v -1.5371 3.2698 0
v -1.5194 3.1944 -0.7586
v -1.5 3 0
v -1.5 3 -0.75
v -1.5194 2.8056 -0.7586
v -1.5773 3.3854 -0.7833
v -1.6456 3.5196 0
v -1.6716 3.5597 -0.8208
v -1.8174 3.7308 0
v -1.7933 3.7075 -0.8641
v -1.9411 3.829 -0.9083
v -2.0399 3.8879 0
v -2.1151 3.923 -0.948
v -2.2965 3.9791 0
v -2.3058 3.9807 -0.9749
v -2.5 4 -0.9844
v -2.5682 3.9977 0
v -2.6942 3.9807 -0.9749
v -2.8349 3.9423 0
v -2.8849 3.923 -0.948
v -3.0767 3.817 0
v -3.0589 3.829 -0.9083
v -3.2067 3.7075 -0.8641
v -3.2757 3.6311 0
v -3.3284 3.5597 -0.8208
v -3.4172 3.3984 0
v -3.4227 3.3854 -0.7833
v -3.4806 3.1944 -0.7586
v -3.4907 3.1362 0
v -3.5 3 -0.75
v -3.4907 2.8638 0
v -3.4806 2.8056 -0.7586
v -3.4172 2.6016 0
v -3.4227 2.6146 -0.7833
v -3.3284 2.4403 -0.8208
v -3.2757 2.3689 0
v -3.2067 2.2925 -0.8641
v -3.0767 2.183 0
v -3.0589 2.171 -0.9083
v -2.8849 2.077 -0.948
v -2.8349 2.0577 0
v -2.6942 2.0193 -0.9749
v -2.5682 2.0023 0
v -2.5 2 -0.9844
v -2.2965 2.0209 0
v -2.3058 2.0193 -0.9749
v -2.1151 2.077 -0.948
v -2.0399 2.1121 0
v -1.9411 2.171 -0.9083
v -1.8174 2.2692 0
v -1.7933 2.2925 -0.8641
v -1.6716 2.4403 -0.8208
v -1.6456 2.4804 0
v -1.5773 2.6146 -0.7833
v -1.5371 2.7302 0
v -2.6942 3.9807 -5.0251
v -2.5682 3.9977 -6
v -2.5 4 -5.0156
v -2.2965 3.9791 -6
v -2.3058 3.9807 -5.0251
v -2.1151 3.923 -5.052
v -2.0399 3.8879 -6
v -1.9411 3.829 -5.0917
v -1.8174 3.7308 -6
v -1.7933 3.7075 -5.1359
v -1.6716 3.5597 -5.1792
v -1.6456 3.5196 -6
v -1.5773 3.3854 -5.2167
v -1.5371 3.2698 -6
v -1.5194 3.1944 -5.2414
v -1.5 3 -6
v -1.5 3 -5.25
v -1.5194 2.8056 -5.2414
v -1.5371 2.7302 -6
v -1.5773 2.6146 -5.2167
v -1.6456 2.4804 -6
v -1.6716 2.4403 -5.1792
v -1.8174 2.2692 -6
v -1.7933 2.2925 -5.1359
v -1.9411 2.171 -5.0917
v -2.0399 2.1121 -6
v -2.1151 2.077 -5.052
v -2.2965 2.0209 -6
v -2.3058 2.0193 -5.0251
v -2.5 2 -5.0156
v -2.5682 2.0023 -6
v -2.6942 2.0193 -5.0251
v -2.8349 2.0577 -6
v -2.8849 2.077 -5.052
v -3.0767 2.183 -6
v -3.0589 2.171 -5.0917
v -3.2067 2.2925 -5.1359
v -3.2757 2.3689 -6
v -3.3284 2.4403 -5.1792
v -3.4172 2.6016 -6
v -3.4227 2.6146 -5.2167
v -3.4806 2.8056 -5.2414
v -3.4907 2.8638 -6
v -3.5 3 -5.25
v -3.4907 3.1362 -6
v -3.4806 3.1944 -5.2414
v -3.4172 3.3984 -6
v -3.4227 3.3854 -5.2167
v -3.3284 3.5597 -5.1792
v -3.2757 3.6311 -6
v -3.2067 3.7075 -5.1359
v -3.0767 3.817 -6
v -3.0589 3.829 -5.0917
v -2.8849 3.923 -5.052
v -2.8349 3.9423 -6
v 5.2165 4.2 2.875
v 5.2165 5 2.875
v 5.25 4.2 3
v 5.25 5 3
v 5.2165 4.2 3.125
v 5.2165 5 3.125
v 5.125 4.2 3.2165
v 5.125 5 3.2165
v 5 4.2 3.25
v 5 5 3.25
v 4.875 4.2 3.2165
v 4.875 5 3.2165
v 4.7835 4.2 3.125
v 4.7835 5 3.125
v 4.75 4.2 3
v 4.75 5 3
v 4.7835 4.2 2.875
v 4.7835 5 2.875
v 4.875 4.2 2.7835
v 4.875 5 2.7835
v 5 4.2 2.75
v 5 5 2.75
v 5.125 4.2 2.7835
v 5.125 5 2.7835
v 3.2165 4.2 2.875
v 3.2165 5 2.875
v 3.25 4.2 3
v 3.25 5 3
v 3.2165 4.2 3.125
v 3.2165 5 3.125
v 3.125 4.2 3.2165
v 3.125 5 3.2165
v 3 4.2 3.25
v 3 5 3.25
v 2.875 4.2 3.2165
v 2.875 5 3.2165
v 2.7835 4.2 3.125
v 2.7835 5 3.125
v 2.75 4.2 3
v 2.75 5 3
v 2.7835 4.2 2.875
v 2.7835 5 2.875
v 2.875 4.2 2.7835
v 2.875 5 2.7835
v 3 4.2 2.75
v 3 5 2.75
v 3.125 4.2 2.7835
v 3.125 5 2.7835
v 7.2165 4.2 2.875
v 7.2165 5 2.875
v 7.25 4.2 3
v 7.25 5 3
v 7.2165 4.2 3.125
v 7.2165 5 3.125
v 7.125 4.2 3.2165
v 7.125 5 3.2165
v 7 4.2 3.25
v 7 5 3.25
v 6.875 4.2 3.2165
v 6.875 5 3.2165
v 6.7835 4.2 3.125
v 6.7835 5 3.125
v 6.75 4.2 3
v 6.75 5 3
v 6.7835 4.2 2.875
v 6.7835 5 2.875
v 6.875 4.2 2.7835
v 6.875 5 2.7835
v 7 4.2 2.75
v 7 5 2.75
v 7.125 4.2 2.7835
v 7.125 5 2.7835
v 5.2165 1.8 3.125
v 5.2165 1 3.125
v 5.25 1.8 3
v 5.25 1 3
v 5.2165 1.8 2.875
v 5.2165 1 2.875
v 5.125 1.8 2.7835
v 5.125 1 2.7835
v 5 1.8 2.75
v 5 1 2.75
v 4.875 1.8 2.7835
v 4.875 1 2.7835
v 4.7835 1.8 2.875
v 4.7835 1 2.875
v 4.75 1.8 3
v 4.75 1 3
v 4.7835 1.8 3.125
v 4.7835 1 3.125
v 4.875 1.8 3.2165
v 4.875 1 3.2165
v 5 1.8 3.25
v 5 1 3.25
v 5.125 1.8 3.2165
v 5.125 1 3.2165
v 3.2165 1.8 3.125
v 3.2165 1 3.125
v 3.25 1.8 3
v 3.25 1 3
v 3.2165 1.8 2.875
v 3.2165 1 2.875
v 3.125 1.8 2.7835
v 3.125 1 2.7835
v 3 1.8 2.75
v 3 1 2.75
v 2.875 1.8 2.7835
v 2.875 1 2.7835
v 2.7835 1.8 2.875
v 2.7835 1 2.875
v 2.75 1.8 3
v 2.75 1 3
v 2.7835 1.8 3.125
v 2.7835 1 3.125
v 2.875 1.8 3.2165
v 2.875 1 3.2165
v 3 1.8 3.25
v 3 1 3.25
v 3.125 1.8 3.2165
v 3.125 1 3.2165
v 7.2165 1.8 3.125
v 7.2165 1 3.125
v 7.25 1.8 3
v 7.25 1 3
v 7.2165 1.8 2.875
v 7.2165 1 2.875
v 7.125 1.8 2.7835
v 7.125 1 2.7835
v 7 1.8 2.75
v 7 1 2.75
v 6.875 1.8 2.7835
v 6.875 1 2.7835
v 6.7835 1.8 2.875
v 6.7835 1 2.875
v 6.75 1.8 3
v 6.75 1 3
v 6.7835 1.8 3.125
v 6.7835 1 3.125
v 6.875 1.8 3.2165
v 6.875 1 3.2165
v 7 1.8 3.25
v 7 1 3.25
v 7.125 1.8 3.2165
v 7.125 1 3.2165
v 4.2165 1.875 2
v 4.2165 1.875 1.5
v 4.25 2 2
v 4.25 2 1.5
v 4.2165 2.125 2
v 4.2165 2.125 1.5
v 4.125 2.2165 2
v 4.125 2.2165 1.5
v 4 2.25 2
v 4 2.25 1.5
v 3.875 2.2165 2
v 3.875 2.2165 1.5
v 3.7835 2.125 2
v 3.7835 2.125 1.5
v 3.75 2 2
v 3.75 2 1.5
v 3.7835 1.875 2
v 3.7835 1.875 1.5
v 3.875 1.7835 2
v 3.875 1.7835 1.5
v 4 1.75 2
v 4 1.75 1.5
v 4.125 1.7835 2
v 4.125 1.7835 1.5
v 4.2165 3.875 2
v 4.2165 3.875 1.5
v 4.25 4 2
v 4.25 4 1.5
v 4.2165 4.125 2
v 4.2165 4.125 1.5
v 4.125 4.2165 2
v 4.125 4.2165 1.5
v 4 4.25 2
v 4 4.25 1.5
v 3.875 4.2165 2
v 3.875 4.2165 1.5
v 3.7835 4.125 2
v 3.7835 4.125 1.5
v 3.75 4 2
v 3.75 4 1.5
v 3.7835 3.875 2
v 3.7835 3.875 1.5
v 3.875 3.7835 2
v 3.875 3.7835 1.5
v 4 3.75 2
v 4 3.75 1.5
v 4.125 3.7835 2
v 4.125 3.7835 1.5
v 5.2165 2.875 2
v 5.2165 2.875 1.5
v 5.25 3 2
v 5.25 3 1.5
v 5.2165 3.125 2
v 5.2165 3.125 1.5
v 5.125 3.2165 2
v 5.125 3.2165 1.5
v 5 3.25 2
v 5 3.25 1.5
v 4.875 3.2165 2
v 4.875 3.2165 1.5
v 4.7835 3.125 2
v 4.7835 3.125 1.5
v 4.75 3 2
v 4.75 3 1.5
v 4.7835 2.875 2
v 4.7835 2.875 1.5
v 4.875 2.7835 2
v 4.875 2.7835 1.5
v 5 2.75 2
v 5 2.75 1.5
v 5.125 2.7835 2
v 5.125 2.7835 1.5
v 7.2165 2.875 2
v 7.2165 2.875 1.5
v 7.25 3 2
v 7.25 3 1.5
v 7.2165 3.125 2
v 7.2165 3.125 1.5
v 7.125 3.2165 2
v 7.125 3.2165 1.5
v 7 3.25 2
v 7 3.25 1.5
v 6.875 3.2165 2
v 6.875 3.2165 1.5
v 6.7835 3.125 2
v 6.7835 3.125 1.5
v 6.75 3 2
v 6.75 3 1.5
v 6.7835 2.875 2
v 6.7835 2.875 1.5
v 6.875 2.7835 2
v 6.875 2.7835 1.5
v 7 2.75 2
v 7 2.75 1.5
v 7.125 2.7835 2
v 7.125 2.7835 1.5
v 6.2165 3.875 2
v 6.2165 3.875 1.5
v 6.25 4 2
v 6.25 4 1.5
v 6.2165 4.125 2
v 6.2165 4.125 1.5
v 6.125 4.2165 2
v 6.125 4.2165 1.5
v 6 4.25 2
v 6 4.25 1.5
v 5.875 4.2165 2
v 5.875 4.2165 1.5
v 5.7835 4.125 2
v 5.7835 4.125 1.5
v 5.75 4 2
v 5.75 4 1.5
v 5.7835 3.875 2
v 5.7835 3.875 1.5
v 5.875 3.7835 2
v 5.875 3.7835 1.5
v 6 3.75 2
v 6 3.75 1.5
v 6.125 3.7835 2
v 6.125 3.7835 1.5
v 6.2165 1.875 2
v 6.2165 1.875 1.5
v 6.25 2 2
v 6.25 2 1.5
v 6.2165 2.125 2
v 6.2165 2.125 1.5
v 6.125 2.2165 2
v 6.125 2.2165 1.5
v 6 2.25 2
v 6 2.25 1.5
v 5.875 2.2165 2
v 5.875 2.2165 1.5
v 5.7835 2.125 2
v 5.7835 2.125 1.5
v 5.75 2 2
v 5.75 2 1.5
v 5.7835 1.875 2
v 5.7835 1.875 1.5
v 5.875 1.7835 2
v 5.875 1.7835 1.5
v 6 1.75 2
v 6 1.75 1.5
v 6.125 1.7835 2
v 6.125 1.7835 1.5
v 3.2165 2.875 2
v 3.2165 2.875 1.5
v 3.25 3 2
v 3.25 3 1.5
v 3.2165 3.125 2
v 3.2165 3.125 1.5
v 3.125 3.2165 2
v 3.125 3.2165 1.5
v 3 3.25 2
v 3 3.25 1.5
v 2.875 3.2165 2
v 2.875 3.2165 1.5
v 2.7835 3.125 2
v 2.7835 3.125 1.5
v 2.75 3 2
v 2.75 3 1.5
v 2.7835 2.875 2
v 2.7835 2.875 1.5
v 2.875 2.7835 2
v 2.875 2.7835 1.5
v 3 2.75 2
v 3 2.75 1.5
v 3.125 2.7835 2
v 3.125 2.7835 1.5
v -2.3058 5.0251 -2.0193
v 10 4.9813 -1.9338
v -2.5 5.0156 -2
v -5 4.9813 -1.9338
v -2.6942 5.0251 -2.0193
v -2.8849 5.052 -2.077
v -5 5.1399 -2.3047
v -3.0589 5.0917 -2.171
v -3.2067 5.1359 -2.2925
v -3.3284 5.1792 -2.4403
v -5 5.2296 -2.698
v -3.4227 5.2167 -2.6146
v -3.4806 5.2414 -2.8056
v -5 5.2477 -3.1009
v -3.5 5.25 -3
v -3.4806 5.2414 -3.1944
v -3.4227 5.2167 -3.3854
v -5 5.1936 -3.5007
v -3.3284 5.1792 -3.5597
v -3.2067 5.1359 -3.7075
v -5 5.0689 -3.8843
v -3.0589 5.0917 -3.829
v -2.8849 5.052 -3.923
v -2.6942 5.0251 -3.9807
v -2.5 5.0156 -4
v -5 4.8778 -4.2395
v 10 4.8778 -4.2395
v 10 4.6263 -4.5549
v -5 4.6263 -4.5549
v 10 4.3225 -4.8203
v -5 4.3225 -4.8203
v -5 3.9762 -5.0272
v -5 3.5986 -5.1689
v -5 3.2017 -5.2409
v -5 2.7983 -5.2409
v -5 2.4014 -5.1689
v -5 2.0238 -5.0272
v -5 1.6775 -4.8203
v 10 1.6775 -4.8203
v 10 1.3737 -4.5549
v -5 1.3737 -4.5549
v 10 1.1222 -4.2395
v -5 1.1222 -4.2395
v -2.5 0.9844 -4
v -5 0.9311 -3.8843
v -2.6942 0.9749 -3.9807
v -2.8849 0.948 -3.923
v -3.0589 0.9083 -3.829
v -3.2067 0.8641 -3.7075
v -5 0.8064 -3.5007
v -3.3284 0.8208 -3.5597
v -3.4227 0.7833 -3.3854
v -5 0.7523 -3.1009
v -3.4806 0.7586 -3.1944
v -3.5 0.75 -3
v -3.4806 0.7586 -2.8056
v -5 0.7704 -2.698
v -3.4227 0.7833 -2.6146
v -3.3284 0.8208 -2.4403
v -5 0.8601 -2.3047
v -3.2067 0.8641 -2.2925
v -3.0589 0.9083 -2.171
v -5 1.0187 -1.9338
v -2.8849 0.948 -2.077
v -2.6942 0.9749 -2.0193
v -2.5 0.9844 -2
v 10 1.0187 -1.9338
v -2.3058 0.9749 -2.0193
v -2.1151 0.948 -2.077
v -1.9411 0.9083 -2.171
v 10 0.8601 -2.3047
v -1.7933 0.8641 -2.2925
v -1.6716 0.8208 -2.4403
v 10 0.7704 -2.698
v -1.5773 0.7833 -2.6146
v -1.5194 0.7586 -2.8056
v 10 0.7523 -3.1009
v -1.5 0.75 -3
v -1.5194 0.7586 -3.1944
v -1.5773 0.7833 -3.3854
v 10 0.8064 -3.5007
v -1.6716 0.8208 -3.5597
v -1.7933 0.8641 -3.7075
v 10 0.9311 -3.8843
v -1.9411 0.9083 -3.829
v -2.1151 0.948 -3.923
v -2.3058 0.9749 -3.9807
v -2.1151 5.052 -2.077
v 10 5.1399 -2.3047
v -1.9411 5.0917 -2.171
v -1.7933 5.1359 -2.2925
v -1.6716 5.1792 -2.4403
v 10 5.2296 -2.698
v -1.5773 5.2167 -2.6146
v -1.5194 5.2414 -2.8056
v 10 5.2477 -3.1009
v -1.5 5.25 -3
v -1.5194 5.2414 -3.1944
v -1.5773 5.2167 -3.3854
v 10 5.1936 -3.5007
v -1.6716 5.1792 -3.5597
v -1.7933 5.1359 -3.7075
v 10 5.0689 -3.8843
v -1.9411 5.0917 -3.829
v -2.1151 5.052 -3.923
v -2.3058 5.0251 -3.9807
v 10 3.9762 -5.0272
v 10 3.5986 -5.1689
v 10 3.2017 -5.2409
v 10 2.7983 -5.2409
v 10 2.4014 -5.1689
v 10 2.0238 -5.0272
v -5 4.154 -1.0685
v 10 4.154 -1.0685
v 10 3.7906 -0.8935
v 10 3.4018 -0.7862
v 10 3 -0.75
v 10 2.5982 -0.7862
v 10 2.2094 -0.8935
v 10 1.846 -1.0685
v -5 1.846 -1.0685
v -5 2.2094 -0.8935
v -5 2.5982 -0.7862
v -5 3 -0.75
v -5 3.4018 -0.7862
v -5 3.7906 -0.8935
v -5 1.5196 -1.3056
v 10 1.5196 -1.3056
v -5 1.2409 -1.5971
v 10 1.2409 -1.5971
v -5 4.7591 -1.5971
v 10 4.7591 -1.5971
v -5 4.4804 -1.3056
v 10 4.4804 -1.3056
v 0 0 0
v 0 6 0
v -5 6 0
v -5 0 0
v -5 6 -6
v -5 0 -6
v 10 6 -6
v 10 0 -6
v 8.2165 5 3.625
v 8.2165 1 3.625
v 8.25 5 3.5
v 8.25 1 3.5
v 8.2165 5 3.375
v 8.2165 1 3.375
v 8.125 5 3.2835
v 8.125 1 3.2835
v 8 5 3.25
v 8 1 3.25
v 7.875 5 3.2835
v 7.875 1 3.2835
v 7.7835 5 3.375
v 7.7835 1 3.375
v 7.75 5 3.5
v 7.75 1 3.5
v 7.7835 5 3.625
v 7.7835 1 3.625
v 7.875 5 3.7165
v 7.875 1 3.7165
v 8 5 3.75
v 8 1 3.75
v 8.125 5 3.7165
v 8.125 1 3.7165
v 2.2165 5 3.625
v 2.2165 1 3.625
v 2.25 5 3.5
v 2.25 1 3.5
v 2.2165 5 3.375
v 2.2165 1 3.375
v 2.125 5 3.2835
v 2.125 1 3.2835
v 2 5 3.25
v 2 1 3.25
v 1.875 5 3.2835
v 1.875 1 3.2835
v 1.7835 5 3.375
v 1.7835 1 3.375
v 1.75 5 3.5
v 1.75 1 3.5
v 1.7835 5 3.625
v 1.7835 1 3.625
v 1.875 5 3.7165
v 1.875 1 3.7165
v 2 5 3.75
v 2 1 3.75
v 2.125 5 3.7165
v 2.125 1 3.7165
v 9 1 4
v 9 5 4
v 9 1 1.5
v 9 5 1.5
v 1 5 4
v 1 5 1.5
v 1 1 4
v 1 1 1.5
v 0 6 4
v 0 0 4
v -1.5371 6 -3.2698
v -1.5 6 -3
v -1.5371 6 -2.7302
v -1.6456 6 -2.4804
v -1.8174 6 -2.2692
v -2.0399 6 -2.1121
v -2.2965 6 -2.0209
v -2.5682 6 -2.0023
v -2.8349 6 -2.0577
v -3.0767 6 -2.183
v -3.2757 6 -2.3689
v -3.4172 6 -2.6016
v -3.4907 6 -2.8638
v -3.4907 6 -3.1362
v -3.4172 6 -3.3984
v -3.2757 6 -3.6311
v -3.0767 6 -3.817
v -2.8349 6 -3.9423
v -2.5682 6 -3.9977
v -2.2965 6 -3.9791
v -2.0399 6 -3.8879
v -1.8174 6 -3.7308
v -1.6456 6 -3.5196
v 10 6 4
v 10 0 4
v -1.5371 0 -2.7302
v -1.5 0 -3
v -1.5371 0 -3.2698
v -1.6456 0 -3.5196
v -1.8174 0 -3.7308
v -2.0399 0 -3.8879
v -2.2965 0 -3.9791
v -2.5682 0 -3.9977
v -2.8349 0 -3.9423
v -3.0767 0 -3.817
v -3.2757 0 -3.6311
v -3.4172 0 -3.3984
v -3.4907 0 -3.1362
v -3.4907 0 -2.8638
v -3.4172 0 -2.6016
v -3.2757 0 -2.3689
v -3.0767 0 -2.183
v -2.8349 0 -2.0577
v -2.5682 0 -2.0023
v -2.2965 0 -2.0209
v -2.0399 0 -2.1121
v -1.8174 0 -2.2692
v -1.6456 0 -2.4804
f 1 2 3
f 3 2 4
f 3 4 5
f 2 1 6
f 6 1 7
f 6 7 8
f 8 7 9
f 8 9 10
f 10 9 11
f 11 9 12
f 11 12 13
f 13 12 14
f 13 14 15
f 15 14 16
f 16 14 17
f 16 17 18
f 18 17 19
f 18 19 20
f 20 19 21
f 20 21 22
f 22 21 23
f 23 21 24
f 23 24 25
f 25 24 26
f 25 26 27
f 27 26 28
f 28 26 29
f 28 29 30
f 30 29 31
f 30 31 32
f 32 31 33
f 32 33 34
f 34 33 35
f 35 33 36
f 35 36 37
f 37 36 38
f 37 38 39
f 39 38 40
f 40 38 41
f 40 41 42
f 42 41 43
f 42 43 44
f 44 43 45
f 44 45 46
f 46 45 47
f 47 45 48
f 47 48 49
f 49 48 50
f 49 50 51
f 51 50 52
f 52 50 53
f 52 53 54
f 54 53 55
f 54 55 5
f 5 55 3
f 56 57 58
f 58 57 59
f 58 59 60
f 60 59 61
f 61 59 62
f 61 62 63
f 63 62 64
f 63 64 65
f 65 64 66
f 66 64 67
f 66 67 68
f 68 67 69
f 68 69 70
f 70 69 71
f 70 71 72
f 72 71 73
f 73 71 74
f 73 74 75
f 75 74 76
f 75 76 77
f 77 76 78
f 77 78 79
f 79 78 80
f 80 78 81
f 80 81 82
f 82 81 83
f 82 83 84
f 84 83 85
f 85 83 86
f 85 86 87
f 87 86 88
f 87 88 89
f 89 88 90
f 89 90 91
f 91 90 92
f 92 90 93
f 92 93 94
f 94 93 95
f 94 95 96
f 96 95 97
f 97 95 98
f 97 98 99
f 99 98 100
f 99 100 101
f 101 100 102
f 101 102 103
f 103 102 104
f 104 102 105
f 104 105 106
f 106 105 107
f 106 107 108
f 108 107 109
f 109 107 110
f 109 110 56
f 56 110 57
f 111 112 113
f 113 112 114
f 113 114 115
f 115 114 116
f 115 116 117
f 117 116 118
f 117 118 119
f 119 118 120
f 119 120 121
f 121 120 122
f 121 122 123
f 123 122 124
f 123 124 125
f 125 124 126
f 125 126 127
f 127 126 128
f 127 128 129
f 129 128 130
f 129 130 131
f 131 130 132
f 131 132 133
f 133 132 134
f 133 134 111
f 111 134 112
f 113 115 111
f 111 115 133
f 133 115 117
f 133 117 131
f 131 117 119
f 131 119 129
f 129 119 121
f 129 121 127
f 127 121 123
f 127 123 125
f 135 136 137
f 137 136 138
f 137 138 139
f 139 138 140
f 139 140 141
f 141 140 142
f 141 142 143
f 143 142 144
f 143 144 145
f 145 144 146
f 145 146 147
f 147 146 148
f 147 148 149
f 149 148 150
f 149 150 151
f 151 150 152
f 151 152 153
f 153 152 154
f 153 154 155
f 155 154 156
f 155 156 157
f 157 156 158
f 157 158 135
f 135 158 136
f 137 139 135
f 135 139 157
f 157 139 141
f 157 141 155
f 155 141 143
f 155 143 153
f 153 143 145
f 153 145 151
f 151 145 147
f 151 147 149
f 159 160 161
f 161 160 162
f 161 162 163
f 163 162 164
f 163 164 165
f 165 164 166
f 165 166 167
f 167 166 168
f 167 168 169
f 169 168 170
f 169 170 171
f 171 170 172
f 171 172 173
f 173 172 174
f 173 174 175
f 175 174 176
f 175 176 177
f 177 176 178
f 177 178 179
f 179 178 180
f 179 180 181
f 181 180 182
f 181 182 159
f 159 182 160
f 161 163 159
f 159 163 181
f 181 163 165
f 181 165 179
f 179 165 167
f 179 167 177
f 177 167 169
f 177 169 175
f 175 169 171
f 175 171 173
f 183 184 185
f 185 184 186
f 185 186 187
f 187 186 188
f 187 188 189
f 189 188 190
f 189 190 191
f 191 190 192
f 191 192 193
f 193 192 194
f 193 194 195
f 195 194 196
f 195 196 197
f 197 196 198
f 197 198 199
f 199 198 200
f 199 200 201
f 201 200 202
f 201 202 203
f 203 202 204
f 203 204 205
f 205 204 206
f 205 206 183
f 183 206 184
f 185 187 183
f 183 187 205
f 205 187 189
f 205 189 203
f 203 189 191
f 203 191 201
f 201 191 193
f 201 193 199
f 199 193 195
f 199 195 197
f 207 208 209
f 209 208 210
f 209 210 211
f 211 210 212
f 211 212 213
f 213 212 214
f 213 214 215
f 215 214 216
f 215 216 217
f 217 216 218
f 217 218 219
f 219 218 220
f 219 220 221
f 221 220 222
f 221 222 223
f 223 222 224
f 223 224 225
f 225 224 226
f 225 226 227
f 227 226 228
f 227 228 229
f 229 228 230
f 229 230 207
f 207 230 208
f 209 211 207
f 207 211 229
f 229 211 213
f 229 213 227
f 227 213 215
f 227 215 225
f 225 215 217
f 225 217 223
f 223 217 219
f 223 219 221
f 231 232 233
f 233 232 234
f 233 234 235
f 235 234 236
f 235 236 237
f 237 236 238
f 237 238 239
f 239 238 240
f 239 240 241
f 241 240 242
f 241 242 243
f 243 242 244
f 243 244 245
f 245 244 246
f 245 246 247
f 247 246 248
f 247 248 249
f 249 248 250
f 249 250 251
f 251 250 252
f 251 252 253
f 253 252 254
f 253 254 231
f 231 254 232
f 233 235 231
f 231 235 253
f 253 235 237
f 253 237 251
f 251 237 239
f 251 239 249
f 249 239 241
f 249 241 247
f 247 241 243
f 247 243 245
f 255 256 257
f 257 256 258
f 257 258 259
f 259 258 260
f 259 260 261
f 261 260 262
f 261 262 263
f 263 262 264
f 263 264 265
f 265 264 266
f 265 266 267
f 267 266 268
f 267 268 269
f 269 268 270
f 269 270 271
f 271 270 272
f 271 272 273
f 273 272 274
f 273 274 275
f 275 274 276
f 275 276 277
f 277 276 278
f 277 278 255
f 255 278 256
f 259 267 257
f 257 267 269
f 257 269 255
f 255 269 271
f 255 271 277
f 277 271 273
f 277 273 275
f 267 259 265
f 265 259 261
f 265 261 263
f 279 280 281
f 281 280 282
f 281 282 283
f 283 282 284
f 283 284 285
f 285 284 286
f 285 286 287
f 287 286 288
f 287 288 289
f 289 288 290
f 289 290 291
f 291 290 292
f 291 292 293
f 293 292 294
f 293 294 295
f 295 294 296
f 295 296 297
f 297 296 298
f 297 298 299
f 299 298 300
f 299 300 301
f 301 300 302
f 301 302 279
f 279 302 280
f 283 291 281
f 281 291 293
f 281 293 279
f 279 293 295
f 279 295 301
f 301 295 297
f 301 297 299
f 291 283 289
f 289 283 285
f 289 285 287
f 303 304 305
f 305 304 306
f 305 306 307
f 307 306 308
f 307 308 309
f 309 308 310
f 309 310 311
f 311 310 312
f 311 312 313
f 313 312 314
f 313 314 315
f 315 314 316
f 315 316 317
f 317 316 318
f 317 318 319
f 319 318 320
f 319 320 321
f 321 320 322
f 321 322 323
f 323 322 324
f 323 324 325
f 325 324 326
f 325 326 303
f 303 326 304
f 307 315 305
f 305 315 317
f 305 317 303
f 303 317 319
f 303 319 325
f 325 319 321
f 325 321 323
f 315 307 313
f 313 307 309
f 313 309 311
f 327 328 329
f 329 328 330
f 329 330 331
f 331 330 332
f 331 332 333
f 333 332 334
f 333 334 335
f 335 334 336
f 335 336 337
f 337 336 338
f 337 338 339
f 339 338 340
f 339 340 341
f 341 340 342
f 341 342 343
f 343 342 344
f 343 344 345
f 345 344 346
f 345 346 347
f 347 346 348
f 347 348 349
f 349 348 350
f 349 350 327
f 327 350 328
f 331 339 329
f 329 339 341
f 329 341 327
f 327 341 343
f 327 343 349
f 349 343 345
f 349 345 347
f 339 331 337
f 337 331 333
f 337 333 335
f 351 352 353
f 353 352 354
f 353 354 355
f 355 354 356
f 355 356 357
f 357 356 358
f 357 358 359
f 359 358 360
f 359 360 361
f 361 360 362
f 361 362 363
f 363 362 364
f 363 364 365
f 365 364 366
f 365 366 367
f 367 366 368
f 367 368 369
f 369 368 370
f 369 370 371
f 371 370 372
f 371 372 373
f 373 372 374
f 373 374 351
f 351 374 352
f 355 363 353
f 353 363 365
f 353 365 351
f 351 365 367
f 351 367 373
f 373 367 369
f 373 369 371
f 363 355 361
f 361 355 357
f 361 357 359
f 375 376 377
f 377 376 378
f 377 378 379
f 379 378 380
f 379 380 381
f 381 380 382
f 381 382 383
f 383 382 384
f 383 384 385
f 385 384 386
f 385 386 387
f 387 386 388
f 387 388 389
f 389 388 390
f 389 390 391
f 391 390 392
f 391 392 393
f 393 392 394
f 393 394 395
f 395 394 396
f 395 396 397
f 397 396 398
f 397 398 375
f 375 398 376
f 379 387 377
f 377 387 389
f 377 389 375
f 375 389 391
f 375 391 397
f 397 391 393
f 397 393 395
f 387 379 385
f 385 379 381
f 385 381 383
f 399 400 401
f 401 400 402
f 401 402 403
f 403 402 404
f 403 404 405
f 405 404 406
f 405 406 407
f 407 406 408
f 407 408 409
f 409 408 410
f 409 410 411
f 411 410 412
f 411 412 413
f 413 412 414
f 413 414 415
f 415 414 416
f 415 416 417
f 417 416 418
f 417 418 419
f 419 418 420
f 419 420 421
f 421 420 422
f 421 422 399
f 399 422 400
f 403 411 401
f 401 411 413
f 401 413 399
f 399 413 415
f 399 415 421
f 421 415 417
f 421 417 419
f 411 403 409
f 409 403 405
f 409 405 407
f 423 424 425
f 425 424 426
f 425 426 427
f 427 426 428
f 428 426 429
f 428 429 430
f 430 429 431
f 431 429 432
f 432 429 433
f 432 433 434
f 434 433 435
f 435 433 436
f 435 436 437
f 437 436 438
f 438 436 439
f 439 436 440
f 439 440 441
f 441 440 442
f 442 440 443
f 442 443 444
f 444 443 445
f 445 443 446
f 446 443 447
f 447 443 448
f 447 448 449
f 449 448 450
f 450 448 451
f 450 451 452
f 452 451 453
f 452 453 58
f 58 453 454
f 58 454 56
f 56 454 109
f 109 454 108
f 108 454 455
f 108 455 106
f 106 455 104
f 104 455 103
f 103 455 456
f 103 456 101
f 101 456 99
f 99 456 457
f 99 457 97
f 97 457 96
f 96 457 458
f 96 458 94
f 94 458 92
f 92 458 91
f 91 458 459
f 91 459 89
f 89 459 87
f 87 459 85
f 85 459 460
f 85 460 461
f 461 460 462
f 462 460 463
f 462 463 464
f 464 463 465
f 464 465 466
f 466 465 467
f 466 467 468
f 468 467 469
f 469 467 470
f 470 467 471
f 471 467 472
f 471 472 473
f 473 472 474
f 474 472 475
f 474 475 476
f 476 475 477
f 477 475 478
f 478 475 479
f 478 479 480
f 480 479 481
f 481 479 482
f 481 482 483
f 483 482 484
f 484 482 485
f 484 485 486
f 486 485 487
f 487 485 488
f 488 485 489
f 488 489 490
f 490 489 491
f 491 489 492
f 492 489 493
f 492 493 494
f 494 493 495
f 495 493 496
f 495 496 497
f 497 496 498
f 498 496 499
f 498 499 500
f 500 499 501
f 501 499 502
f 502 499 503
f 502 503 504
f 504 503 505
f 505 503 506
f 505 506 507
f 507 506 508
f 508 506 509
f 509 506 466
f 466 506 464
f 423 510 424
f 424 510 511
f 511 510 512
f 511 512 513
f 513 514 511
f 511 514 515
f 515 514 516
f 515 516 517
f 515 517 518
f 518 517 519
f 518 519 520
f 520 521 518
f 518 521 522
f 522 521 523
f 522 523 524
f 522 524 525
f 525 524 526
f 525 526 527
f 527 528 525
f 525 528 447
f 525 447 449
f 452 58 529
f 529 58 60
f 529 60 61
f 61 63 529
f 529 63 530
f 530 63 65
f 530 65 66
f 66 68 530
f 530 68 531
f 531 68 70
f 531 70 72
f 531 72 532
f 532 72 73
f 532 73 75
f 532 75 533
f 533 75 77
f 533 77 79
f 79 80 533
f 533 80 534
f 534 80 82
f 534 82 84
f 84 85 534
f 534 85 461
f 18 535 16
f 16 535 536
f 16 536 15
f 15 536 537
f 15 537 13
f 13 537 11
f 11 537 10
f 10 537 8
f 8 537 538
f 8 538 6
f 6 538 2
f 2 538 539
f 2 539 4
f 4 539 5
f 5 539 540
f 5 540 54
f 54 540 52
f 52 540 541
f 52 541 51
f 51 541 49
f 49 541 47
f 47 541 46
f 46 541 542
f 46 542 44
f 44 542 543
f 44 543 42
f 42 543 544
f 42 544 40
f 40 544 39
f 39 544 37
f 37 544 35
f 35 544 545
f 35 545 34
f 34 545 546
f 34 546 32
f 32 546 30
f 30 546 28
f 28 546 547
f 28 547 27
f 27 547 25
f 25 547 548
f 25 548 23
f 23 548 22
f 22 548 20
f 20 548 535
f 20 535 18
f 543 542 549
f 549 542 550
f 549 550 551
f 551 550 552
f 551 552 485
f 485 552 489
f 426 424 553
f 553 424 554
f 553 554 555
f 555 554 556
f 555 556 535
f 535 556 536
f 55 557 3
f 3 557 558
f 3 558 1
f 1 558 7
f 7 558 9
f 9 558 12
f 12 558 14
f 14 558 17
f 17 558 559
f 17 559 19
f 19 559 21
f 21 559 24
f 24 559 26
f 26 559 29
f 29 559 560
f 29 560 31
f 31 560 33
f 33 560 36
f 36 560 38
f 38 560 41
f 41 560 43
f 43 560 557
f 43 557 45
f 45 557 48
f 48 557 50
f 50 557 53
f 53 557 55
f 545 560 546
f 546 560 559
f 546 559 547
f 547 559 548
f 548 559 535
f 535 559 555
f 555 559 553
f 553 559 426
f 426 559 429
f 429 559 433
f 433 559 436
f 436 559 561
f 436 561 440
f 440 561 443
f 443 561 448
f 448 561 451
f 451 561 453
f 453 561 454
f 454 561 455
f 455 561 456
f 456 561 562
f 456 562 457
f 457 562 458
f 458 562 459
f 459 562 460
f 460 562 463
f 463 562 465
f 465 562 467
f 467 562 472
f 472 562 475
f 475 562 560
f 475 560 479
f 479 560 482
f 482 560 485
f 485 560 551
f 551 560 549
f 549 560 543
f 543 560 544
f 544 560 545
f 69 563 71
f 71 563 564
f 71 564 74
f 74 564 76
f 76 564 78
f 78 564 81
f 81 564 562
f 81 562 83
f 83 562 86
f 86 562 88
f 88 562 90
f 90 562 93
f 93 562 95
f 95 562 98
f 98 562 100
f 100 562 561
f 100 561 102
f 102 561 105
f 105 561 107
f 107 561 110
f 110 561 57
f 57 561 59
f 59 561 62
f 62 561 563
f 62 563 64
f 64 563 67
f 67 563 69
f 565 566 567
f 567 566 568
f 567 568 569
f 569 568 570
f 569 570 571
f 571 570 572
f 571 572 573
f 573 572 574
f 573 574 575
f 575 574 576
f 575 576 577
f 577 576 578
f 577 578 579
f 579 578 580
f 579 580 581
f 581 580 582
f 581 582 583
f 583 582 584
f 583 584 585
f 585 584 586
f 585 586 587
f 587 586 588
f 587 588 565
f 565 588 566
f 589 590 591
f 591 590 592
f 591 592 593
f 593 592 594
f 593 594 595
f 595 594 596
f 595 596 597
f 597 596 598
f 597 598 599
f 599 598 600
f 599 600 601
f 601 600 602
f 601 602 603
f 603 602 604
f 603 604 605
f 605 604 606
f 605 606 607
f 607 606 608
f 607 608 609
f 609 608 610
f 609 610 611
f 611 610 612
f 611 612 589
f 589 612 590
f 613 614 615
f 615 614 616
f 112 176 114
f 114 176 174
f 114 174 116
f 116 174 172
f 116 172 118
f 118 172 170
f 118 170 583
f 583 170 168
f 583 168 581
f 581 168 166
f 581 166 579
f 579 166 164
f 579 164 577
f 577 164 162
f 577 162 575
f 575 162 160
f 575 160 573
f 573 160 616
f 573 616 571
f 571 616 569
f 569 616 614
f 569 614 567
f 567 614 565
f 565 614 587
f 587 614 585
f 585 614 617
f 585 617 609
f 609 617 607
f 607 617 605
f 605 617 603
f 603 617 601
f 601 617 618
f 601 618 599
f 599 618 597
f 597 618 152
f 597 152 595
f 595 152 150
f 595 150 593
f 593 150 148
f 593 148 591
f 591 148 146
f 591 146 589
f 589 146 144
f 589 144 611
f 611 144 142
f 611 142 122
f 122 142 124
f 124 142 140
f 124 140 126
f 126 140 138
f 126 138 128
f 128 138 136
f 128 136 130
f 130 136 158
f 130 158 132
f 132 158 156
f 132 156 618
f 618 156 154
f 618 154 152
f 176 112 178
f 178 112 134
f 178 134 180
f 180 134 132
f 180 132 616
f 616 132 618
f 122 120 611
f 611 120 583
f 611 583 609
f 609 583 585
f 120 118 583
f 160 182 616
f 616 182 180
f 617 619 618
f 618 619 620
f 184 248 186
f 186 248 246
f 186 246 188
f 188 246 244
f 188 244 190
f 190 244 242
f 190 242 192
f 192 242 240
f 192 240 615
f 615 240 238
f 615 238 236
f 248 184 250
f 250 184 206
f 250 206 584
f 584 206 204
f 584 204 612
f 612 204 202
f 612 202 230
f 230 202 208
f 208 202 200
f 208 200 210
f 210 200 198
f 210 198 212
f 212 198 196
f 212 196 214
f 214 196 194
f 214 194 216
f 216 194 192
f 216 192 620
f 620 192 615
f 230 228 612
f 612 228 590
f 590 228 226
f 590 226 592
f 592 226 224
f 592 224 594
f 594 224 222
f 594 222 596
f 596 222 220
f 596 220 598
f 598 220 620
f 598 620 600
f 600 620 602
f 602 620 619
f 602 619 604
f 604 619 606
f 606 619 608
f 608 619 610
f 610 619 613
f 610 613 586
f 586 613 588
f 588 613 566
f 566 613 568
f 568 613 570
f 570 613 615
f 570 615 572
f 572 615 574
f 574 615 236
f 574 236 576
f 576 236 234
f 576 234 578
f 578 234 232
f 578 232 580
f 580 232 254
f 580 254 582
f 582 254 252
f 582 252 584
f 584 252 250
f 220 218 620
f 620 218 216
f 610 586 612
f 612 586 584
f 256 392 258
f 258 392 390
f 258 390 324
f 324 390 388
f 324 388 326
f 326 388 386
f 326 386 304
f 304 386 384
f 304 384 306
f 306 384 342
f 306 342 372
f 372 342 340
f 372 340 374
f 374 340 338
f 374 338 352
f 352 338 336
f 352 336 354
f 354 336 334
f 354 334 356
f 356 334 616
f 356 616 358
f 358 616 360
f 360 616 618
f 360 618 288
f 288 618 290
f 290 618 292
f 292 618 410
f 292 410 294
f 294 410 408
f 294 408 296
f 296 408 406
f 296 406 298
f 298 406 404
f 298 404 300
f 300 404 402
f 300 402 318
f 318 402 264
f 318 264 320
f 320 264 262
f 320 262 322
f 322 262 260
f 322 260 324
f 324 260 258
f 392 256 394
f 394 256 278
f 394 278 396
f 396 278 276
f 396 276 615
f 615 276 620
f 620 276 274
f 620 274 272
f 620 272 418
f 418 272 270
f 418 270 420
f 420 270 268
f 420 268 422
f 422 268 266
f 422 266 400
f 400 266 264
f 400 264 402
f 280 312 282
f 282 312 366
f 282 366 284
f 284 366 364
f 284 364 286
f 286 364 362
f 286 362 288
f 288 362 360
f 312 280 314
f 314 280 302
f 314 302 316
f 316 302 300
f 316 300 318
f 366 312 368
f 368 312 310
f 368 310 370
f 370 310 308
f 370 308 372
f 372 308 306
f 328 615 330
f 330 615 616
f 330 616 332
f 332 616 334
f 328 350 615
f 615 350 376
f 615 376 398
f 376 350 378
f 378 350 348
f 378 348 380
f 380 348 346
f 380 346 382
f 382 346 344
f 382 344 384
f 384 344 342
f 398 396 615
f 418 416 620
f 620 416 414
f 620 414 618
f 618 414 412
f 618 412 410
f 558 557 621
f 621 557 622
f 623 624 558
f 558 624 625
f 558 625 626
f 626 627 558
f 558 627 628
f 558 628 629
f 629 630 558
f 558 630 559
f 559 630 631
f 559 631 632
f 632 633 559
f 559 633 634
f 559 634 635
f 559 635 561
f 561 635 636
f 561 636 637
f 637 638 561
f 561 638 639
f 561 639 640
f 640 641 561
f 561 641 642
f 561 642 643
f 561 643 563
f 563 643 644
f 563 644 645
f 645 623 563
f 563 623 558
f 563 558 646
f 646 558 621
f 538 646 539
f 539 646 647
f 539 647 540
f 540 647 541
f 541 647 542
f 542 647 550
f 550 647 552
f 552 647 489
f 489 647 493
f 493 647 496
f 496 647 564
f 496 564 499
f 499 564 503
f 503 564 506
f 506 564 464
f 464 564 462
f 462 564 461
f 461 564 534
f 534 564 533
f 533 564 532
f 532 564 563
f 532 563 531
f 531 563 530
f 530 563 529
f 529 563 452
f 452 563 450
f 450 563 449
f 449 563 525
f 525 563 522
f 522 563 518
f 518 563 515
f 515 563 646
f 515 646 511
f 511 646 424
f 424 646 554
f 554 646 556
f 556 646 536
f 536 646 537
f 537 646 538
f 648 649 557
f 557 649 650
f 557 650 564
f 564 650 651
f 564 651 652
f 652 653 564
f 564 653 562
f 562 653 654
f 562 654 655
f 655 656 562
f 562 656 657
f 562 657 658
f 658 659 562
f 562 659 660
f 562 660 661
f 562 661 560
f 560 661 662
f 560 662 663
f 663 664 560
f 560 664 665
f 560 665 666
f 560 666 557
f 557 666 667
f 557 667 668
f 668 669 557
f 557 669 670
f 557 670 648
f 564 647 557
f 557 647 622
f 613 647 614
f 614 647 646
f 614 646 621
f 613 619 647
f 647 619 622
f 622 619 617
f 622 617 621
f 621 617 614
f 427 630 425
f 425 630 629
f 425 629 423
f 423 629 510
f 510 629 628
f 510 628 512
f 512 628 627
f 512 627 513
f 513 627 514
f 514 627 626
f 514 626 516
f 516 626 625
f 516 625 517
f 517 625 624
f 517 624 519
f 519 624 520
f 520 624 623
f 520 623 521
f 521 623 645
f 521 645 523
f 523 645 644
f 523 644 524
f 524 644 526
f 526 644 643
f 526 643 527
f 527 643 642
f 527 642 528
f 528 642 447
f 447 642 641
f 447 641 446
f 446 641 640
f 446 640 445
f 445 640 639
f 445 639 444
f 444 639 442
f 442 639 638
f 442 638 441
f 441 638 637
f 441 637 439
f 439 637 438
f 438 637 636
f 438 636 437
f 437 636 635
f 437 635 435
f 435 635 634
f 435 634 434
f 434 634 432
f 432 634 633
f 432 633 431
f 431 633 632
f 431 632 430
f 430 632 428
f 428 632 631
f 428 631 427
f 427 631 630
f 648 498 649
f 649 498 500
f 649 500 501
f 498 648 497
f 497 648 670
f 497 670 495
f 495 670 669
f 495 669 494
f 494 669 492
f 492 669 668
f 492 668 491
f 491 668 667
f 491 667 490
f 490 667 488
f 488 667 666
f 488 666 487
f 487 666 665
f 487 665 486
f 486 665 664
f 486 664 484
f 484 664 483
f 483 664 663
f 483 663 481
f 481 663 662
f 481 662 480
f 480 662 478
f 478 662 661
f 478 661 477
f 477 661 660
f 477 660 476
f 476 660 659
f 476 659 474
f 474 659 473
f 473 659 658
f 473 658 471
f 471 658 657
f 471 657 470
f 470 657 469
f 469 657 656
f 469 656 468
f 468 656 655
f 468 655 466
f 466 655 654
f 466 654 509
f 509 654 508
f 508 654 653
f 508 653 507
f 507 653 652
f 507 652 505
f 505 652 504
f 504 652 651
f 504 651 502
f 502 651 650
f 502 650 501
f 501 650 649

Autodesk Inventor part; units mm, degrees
ref_plane "YZ Plane" through (0, 0, 0) normal (1, 0, 0) x (0, 1, 0)
ref_plane "XZ Plane" through (0, 0, 0) normal (0, 1, 0) x (-1, 0, 0)
ref_plane "XY Plane" through (0, 0, 0) normal (0, 0, 1) x (1, 0, 0)
sketch "Sketch1" plane through (0, 0, 0) normal (0, 0, 1) x (1, 0, 0)
  line L0 (0, 0) -> (10, 0)
  line L1 (10, 0) -> (10, 6)
  line L2 (10, 6) -> (0, 6)
  line L3 (0, 6) -> (0, 0)
  dimension "d0" = 10
  dimension "d1" = 6
extrude "Extrusion1" add sketch "Sketch1" along normal blind 4
sketch "Sketch2" plane through (0, 0, 4) normal (0, 0, 1) x (1, 0, 0)
  line L0 (1, 1) -> (9, 1)
  line L1 (9, 1) -> (9, 5)
  line L2 (9, 5) -> (1, 5)
  line L3 (1, 5) -> (1, 1)
  point P0 (0, 0)
  dimension "d4" = 8
  dimension "d5" = 4
extrude "Extrusion2" cut sketch "Sketch2" against normal blind 2.5
sketch "Sketch5" plane through (1, 1, 4) normal (0, 1, 0) x (1, 0, 0)
  circle A0 centre (1, 0.5) radius 0.25
  point P0 (-1, 4)
  dimension "d14" = 0.5
sketch "Sketch6" plane through (1, 1, 4) normal (0, 1, 0) x (1, 0, 0)
  circle A0 centre (7, 0.5) radius 0.25
  point P0 (-1, 4)
  dimension "d15" = 0.5
extrude "Extrusion4" add sketch "Sketch5" along normal blind 4
extrude "Extrusion5" add sketch "Sketch6" along normal blind 4
sketch "Sketch14" plane through (0, 0, 0) normal (0, 0, -1) x (-1, 0, 0)
  line L0 (0, 6) -> (0, 0) projected
  line L1 (0, 0) -> (-10, 0) projected
  line L2 (0, 6) -> (-10, 6)
  line L3 (-10, 6) -> (-10, 0)
  line L4 (-10, 0) -> (0, 0)
  line L5 (0, 0) -> (0, 6)
extrude "Extrusion12" add sketch "Sketch14" along normal blind 6
sketch "Sketch15" plane through (0, 0, 4) normal (-1, 0, 0) x (0, 0, 1)
  line L0 (-10, 0) -> (0, 0) projected
  line L1 (-10, 0) -> (-4, 0)
  line L2 (-4, 0) -> (-4, 6)
  line L3 (-4, 6) -> (-10, 6)
  line L4 (-10, 6) -> (-10, 0)
  point P0 (-4, 0)
  dimension "d42" = 6
  dimension "d43" = 6
extrude "Extrusion13" add sketch "Sketch15" along normal blind 5
sketch "Sketch16" plane through (-5, 0, 4) normal (-1, 0, 0) x (0, 0, 1)
  circle A0 centre (-7, 3) radius 2.25
  point P0 (-4, 0)
  dimension "d46" = 4.5
extrude "Extrusion14" cut sketch "Sketch16" against normal blind 15
sketch "Sketch17" plane through (0, 0, 1.5) normal (0, 0, 1) x (1, 0, 0)
  circle A0 centre (3, 3) radius 0.25
  point P0 (0, 0)
  dimension "d49" = 0.5
extrude "Extrusion15" add sketch "Sketch17" along normal blind 0.5
sketch "Sketch18" plane through (0, 0, 1.5) normal (0, 0, 1) x (1, 0, 0)
  circle A0 centre (5, 3) radius 0.25
  circle A1 centre (7, 3) radius 0.25
  circle A2 centre (4, 4) radius 0.25
  circle A3 centre (6, 4) radius 0.25
  circle A4 centre (4, 2) radius 0.25
  circle A5 centre (6, 2) radius 0.25
  point P0 (0, 0)
  dimension "d52" = 0.5
  dimension "d53" = 0.5
  dimension "d54" = 0.5
  dimension "d55" = 0.5
  dimension "d56" = 0.5
  dimension "d57" = 0.5
extrude "Extrusion16" add sketch "Sketch18" along normal blind 0.5
sketch "Sketch19" plane through (1, 1, 4) normal (0, 1, 0) x (1, 0, 0)
  point P0 (-1, 4)
sketch "Sketch20" plane through (1, 1, 4) normal (0, 1, 0) x (1, 0, 0)
  circle A0 centre (2, 1) radius 0.25
  circle A1 centre (4, 1) radius 0.25
  circle A2 centre (6, 1) radius 0.25
  point P0 (-1, 4)
  dimension "d60" = 0.5
  dimension "d61" = 0.5
  dimension "d62" = 0.5
extrude "Extrusion17" add sketch "Sketch20" along normal blind 0.8
sketch "Sketch21" plane through (1, 5, 4) normal (0, -1, 0) x (1, 0, 0)
  circle A0 centre (2, -1) radius 0.25
  circle A1 centre (4, -1) radius 0.25
  circle A2 centre (6, -1) radius 0.25
  point P0 (-1, -4)
  dimension "d65" = 0.5
  dimension "d66" = 0.5
  dimension "d67" = 0.5
extrude "Extrusion18" add sketch "Sketch21" along normal blind 0.8
sketch "Sketch22" plane through (0, 0, 0) normal (0, 0, 1) x (1, 0, 0)
  circle A0 centre (-2.5, 3) radius 1
  point P0 (0, 0)
  dimension "d70" = 2
extrude "Extrusion19" cut sketch "Sketch22" against normal blind 6
sketch "Sketch23" plane through (0, 0, 4) normal (0, -1, 0) x (1, 0, 0)
  point P0 (0, -4)
sketch "Sketch24" plane through (0, 0, 4) normal (0, -1, 0) x (1, 0, 0)
  circle A0 centre (-2.5, -7) radius 1
  point P0 (0, -4)
  dimension "d73" = 2
extrude "Extrusion20" cut sketch "Sketch24" against normal blind 6
properties part number "20190425_NewHolde3"
